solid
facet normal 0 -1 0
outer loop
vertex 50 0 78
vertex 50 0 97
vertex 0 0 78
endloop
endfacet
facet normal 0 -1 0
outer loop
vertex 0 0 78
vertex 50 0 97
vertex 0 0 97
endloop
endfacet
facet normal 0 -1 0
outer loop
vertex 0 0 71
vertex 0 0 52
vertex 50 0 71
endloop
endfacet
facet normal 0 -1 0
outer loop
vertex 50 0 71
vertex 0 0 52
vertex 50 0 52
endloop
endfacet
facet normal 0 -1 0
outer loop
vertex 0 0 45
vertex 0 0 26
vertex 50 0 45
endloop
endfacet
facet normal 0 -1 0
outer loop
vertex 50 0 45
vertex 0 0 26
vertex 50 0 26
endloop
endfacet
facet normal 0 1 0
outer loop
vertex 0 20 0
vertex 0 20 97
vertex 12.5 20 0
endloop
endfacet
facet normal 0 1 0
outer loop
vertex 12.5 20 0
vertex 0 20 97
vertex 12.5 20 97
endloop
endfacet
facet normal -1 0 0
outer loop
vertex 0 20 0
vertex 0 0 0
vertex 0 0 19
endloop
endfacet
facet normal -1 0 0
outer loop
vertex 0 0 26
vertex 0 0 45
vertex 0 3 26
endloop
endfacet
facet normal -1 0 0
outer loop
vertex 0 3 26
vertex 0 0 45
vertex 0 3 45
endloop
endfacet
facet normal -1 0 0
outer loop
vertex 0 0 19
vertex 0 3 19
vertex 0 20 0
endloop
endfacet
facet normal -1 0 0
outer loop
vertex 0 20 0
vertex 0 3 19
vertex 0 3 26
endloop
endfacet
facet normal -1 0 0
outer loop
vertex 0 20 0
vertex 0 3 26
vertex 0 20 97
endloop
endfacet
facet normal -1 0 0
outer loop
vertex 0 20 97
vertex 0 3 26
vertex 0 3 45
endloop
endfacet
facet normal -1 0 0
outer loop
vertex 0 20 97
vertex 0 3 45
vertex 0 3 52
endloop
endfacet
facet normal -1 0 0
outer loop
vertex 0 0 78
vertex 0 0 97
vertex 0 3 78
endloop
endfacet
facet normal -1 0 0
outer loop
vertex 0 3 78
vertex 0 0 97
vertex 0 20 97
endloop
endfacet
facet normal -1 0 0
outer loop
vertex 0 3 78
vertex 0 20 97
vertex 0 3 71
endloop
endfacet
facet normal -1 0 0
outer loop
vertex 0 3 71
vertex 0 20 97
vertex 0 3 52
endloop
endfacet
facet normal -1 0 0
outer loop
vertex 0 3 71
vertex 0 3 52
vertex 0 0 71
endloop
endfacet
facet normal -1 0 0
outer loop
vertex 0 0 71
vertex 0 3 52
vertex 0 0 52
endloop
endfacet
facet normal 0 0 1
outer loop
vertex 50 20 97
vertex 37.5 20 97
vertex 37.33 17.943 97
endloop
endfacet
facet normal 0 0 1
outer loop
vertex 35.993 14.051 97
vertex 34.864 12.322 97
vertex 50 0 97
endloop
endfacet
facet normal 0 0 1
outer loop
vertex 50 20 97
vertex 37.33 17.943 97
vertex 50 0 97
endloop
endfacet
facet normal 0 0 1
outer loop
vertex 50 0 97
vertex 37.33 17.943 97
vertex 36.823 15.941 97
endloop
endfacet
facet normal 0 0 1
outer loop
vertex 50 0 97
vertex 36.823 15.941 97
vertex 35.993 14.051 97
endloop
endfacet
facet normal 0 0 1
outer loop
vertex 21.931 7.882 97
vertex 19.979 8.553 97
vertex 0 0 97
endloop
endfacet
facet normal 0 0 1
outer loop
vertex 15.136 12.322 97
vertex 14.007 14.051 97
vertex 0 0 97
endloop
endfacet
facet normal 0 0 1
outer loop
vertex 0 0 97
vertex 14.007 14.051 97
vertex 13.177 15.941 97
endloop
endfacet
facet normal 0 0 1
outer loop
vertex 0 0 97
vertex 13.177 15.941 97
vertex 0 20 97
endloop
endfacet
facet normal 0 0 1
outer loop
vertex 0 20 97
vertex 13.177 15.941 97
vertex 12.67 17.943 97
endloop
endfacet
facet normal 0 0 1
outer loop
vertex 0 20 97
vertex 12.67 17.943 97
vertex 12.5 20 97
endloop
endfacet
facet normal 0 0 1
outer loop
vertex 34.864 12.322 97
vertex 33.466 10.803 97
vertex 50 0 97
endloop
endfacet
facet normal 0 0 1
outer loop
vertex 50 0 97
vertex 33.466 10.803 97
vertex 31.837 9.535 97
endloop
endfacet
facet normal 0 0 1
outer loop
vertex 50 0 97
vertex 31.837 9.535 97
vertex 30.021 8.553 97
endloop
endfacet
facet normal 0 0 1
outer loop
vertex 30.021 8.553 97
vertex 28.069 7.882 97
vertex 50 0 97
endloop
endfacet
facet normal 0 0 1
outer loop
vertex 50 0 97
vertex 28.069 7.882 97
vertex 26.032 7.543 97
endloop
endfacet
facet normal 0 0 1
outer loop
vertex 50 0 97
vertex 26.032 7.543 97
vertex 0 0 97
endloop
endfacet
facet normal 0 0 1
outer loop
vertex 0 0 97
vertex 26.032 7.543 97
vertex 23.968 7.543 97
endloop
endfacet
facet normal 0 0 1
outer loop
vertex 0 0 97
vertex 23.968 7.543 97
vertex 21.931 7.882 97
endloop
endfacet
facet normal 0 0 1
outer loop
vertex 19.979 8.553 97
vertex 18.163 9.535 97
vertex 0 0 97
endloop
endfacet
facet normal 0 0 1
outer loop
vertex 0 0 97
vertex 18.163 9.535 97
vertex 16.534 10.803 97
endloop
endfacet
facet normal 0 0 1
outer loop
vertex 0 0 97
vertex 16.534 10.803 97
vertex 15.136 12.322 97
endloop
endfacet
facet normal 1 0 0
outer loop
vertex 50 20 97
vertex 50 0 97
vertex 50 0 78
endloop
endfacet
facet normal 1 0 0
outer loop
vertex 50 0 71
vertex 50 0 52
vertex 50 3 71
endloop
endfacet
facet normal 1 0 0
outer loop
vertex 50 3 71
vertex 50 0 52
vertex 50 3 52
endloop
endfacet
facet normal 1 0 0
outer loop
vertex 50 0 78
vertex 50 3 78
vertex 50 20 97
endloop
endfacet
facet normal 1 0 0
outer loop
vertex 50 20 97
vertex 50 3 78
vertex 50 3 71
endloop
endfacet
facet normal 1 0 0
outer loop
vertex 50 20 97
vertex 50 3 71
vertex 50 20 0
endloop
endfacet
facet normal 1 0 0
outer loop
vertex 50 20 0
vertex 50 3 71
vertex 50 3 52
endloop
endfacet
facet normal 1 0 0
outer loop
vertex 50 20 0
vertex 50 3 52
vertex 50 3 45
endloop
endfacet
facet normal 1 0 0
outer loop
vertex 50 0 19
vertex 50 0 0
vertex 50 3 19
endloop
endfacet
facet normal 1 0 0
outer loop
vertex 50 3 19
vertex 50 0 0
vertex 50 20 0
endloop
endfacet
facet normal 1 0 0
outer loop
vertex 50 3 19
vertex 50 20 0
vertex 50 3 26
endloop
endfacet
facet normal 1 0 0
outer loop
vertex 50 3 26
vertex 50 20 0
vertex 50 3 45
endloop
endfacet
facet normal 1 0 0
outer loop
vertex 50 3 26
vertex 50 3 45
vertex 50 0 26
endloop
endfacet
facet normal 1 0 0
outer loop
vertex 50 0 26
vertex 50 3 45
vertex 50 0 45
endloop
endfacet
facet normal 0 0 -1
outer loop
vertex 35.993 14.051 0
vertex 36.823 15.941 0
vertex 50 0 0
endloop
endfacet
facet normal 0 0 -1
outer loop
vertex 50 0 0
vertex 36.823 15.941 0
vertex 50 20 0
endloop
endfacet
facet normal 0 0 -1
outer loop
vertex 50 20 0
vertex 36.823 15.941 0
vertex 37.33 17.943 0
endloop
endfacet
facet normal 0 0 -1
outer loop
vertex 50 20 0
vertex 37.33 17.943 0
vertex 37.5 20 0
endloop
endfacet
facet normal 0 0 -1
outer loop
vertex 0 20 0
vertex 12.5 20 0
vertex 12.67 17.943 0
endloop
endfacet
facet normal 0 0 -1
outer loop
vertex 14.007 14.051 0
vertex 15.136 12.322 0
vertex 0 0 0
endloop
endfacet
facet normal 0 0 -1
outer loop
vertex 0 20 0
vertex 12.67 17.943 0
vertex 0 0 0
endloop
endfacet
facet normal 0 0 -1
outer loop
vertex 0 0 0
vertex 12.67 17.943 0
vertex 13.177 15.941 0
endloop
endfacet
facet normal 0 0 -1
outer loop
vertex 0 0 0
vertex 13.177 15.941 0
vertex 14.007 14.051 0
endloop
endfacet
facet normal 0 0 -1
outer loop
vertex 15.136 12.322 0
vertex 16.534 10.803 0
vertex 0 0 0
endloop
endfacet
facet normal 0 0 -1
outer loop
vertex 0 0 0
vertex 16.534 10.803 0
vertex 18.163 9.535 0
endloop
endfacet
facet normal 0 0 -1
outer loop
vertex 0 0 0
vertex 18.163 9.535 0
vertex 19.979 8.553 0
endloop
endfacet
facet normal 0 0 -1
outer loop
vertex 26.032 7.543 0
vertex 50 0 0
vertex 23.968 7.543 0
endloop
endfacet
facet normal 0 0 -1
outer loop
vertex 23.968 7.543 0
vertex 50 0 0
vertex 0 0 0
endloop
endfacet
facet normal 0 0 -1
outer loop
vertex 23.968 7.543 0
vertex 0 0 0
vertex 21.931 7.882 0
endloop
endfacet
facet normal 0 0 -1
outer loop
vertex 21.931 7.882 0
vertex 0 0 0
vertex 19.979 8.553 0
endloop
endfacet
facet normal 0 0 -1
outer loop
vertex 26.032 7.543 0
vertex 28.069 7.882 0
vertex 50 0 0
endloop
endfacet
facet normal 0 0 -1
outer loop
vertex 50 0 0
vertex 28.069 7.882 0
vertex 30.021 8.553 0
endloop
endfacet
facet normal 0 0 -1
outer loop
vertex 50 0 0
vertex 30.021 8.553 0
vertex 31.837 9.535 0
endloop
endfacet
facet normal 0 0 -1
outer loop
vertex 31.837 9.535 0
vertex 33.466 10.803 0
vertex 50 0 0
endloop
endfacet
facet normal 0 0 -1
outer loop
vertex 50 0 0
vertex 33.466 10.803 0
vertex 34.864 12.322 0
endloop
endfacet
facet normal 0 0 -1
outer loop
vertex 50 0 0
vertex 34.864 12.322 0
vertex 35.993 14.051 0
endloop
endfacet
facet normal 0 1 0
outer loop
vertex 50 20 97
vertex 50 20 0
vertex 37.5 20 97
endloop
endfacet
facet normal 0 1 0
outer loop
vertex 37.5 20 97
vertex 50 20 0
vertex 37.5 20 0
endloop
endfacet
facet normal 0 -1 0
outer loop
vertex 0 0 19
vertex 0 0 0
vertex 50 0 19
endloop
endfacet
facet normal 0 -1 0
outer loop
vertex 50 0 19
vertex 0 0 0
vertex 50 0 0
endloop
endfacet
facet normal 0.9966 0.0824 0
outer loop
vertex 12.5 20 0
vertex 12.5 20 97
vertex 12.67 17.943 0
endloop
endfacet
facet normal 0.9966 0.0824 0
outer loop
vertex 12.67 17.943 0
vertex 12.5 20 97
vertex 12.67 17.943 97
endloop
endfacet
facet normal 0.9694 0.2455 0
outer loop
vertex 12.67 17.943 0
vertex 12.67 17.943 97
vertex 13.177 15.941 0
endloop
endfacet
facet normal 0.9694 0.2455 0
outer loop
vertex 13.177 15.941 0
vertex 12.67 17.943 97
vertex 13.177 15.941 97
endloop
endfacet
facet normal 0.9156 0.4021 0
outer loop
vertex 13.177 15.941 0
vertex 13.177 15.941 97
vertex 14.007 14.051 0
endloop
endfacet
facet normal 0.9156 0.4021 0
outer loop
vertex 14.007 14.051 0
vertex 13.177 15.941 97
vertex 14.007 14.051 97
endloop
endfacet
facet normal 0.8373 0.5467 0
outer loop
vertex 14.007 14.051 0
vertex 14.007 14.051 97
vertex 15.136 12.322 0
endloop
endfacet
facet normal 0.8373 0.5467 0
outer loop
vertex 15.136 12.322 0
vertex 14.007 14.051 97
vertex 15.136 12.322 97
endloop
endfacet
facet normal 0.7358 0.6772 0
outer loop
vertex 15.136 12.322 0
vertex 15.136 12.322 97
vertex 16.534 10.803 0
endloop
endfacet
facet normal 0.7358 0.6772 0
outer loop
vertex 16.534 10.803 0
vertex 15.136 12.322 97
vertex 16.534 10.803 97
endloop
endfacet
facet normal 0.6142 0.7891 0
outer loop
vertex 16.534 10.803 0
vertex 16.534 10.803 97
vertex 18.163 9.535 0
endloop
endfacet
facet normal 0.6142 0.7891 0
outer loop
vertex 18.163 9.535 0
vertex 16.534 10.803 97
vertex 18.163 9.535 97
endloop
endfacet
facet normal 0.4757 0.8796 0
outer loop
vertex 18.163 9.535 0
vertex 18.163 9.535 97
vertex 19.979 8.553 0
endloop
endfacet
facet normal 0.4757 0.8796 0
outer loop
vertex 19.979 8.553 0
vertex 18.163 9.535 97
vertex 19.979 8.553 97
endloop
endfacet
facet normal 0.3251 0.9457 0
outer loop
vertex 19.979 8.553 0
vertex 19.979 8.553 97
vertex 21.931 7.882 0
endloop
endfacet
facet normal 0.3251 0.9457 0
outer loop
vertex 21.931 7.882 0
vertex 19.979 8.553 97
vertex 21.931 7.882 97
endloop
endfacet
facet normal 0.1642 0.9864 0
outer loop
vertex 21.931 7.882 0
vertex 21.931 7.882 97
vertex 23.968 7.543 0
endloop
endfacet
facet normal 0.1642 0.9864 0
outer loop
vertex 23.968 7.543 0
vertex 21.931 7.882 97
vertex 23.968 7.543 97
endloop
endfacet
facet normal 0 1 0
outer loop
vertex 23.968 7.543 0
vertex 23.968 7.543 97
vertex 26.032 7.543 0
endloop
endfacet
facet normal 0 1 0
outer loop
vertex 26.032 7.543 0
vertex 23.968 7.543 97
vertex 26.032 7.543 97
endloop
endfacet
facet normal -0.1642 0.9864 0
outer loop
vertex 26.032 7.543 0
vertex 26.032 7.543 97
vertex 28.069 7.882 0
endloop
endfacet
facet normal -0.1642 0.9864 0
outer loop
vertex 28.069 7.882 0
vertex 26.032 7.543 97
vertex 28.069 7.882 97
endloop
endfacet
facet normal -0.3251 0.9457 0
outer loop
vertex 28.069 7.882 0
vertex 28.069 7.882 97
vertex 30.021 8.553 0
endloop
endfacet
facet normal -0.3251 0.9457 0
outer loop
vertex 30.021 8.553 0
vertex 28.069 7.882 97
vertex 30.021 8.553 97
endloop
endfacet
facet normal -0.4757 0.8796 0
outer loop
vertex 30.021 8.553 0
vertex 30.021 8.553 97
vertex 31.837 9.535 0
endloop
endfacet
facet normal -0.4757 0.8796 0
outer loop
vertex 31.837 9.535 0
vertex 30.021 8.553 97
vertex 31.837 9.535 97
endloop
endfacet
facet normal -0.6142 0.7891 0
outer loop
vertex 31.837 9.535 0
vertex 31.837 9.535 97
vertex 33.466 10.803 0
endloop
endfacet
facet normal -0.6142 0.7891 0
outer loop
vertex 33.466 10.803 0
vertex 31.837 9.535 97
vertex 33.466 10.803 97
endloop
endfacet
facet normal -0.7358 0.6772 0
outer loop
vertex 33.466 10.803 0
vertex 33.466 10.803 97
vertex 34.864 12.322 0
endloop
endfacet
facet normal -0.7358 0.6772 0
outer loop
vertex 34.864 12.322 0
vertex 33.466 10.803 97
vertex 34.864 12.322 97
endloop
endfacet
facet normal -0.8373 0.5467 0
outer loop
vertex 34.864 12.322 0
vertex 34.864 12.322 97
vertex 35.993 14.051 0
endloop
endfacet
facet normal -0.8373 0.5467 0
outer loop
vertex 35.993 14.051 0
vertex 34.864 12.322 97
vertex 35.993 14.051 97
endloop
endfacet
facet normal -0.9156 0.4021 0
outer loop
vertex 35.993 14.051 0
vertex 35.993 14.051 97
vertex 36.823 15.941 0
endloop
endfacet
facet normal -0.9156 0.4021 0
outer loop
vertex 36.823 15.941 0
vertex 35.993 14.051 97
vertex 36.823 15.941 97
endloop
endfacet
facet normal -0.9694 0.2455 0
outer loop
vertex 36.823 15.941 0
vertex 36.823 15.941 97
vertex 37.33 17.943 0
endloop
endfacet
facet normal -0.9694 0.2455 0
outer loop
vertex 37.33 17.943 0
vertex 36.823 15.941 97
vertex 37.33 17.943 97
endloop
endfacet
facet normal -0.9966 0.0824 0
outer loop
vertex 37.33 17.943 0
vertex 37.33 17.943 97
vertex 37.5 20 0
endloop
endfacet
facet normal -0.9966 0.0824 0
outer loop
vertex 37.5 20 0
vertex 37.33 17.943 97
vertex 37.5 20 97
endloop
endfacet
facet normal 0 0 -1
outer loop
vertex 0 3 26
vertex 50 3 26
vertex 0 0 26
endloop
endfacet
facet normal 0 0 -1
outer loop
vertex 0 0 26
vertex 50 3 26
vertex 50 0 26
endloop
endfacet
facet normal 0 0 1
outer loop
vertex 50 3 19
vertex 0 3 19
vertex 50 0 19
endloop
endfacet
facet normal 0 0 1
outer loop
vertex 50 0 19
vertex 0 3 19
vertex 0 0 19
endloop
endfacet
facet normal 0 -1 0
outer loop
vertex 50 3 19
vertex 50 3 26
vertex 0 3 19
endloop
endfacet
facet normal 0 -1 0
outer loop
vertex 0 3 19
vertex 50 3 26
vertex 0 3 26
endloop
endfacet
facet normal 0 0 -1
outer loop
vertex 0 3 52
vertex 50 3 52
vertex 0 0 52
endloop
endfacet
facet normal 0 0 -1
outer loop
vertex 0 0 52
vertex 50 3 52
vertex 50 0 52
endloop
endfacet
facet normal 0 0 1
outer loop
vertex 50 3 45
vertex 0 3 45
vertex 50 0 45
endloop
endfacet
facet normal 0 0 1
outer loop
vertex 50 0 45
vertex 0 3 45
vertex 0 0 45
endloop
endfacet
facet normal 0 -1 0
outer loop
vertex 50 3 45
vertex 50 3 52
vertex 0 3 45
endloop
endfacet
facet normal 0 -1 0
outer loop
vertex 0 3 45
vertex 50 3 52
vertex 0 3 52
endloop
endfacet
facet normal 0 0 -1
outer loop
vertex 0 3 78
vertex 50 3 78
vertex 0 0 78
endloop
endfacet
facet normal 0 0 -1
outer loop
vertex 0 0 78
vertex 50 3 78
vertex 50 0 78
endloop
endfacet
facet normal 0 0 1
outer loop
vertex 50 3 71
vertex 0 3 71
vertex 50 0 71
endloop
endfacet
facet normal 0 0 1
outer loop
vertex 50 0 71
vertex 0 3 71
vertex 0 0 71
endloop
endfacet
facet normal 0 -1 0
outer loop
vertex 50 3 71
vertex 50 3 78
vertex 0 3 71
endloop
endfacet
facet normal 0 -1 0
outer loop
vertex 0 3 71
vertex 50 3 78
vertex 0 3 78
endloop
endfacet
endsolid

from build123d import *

# Parameters (mm, degrees)
SKETCH1_W           = 50
SKETCH1_H           = 97
BOSS_EXTRUDE1_DEPTH = 20
SKETCH2_R           = 12.5
CUT_EXTRUDE1_DEPTH  = 100
SKETCH3_W           = 50
SKETCH3_H           = 7
CUT_EXTRUDE2_DEPTH  = 3


with BuildPart() as part:
    # Sketch1 → Boss-Extrude1 (new body)
    with BuildSketch(Plane(origin=(0, 0, 0), x_dir=(1, 0, 0), z_dir=(0, 1, 0))):
        with Locations((25, -48.5)):
            Rectangle(SKETCH1_W, SKETCH1_H)
    extrude(amount=BOSS_EXTRUDE1_DEPTH)

    # Sketch2 → Cut-Extrude1 (cut)
    with BuildSketch(Plane.XY.offset(97)):
        with Locations((25, 20)):
            Circle(SKETCH2_R)
    extrude(amount=-CUT_EXTRUDE1_DEPTH, mode=Mode.SUBTRACT)

    # Sketch3 → Cut-Extrude2 (cut)
    with BuildSketch(Plane.XZ):
        with Locations((25, 74.5)):
            Rectangle(SKETCH3_W, SKETCH3_H)
        with Locations((25, 48.5)):
            Rectangle(SKETCH3_W, SKETCH3_H)
        with Locations((25, 22.5)):
            Rectangle(SKETCH3_W, SKETCH3_H)
    extrude(amount=-CUT_EXTRUDE2_DEPTH, mode=Mode.SUBTRACT)


solid = part.part
